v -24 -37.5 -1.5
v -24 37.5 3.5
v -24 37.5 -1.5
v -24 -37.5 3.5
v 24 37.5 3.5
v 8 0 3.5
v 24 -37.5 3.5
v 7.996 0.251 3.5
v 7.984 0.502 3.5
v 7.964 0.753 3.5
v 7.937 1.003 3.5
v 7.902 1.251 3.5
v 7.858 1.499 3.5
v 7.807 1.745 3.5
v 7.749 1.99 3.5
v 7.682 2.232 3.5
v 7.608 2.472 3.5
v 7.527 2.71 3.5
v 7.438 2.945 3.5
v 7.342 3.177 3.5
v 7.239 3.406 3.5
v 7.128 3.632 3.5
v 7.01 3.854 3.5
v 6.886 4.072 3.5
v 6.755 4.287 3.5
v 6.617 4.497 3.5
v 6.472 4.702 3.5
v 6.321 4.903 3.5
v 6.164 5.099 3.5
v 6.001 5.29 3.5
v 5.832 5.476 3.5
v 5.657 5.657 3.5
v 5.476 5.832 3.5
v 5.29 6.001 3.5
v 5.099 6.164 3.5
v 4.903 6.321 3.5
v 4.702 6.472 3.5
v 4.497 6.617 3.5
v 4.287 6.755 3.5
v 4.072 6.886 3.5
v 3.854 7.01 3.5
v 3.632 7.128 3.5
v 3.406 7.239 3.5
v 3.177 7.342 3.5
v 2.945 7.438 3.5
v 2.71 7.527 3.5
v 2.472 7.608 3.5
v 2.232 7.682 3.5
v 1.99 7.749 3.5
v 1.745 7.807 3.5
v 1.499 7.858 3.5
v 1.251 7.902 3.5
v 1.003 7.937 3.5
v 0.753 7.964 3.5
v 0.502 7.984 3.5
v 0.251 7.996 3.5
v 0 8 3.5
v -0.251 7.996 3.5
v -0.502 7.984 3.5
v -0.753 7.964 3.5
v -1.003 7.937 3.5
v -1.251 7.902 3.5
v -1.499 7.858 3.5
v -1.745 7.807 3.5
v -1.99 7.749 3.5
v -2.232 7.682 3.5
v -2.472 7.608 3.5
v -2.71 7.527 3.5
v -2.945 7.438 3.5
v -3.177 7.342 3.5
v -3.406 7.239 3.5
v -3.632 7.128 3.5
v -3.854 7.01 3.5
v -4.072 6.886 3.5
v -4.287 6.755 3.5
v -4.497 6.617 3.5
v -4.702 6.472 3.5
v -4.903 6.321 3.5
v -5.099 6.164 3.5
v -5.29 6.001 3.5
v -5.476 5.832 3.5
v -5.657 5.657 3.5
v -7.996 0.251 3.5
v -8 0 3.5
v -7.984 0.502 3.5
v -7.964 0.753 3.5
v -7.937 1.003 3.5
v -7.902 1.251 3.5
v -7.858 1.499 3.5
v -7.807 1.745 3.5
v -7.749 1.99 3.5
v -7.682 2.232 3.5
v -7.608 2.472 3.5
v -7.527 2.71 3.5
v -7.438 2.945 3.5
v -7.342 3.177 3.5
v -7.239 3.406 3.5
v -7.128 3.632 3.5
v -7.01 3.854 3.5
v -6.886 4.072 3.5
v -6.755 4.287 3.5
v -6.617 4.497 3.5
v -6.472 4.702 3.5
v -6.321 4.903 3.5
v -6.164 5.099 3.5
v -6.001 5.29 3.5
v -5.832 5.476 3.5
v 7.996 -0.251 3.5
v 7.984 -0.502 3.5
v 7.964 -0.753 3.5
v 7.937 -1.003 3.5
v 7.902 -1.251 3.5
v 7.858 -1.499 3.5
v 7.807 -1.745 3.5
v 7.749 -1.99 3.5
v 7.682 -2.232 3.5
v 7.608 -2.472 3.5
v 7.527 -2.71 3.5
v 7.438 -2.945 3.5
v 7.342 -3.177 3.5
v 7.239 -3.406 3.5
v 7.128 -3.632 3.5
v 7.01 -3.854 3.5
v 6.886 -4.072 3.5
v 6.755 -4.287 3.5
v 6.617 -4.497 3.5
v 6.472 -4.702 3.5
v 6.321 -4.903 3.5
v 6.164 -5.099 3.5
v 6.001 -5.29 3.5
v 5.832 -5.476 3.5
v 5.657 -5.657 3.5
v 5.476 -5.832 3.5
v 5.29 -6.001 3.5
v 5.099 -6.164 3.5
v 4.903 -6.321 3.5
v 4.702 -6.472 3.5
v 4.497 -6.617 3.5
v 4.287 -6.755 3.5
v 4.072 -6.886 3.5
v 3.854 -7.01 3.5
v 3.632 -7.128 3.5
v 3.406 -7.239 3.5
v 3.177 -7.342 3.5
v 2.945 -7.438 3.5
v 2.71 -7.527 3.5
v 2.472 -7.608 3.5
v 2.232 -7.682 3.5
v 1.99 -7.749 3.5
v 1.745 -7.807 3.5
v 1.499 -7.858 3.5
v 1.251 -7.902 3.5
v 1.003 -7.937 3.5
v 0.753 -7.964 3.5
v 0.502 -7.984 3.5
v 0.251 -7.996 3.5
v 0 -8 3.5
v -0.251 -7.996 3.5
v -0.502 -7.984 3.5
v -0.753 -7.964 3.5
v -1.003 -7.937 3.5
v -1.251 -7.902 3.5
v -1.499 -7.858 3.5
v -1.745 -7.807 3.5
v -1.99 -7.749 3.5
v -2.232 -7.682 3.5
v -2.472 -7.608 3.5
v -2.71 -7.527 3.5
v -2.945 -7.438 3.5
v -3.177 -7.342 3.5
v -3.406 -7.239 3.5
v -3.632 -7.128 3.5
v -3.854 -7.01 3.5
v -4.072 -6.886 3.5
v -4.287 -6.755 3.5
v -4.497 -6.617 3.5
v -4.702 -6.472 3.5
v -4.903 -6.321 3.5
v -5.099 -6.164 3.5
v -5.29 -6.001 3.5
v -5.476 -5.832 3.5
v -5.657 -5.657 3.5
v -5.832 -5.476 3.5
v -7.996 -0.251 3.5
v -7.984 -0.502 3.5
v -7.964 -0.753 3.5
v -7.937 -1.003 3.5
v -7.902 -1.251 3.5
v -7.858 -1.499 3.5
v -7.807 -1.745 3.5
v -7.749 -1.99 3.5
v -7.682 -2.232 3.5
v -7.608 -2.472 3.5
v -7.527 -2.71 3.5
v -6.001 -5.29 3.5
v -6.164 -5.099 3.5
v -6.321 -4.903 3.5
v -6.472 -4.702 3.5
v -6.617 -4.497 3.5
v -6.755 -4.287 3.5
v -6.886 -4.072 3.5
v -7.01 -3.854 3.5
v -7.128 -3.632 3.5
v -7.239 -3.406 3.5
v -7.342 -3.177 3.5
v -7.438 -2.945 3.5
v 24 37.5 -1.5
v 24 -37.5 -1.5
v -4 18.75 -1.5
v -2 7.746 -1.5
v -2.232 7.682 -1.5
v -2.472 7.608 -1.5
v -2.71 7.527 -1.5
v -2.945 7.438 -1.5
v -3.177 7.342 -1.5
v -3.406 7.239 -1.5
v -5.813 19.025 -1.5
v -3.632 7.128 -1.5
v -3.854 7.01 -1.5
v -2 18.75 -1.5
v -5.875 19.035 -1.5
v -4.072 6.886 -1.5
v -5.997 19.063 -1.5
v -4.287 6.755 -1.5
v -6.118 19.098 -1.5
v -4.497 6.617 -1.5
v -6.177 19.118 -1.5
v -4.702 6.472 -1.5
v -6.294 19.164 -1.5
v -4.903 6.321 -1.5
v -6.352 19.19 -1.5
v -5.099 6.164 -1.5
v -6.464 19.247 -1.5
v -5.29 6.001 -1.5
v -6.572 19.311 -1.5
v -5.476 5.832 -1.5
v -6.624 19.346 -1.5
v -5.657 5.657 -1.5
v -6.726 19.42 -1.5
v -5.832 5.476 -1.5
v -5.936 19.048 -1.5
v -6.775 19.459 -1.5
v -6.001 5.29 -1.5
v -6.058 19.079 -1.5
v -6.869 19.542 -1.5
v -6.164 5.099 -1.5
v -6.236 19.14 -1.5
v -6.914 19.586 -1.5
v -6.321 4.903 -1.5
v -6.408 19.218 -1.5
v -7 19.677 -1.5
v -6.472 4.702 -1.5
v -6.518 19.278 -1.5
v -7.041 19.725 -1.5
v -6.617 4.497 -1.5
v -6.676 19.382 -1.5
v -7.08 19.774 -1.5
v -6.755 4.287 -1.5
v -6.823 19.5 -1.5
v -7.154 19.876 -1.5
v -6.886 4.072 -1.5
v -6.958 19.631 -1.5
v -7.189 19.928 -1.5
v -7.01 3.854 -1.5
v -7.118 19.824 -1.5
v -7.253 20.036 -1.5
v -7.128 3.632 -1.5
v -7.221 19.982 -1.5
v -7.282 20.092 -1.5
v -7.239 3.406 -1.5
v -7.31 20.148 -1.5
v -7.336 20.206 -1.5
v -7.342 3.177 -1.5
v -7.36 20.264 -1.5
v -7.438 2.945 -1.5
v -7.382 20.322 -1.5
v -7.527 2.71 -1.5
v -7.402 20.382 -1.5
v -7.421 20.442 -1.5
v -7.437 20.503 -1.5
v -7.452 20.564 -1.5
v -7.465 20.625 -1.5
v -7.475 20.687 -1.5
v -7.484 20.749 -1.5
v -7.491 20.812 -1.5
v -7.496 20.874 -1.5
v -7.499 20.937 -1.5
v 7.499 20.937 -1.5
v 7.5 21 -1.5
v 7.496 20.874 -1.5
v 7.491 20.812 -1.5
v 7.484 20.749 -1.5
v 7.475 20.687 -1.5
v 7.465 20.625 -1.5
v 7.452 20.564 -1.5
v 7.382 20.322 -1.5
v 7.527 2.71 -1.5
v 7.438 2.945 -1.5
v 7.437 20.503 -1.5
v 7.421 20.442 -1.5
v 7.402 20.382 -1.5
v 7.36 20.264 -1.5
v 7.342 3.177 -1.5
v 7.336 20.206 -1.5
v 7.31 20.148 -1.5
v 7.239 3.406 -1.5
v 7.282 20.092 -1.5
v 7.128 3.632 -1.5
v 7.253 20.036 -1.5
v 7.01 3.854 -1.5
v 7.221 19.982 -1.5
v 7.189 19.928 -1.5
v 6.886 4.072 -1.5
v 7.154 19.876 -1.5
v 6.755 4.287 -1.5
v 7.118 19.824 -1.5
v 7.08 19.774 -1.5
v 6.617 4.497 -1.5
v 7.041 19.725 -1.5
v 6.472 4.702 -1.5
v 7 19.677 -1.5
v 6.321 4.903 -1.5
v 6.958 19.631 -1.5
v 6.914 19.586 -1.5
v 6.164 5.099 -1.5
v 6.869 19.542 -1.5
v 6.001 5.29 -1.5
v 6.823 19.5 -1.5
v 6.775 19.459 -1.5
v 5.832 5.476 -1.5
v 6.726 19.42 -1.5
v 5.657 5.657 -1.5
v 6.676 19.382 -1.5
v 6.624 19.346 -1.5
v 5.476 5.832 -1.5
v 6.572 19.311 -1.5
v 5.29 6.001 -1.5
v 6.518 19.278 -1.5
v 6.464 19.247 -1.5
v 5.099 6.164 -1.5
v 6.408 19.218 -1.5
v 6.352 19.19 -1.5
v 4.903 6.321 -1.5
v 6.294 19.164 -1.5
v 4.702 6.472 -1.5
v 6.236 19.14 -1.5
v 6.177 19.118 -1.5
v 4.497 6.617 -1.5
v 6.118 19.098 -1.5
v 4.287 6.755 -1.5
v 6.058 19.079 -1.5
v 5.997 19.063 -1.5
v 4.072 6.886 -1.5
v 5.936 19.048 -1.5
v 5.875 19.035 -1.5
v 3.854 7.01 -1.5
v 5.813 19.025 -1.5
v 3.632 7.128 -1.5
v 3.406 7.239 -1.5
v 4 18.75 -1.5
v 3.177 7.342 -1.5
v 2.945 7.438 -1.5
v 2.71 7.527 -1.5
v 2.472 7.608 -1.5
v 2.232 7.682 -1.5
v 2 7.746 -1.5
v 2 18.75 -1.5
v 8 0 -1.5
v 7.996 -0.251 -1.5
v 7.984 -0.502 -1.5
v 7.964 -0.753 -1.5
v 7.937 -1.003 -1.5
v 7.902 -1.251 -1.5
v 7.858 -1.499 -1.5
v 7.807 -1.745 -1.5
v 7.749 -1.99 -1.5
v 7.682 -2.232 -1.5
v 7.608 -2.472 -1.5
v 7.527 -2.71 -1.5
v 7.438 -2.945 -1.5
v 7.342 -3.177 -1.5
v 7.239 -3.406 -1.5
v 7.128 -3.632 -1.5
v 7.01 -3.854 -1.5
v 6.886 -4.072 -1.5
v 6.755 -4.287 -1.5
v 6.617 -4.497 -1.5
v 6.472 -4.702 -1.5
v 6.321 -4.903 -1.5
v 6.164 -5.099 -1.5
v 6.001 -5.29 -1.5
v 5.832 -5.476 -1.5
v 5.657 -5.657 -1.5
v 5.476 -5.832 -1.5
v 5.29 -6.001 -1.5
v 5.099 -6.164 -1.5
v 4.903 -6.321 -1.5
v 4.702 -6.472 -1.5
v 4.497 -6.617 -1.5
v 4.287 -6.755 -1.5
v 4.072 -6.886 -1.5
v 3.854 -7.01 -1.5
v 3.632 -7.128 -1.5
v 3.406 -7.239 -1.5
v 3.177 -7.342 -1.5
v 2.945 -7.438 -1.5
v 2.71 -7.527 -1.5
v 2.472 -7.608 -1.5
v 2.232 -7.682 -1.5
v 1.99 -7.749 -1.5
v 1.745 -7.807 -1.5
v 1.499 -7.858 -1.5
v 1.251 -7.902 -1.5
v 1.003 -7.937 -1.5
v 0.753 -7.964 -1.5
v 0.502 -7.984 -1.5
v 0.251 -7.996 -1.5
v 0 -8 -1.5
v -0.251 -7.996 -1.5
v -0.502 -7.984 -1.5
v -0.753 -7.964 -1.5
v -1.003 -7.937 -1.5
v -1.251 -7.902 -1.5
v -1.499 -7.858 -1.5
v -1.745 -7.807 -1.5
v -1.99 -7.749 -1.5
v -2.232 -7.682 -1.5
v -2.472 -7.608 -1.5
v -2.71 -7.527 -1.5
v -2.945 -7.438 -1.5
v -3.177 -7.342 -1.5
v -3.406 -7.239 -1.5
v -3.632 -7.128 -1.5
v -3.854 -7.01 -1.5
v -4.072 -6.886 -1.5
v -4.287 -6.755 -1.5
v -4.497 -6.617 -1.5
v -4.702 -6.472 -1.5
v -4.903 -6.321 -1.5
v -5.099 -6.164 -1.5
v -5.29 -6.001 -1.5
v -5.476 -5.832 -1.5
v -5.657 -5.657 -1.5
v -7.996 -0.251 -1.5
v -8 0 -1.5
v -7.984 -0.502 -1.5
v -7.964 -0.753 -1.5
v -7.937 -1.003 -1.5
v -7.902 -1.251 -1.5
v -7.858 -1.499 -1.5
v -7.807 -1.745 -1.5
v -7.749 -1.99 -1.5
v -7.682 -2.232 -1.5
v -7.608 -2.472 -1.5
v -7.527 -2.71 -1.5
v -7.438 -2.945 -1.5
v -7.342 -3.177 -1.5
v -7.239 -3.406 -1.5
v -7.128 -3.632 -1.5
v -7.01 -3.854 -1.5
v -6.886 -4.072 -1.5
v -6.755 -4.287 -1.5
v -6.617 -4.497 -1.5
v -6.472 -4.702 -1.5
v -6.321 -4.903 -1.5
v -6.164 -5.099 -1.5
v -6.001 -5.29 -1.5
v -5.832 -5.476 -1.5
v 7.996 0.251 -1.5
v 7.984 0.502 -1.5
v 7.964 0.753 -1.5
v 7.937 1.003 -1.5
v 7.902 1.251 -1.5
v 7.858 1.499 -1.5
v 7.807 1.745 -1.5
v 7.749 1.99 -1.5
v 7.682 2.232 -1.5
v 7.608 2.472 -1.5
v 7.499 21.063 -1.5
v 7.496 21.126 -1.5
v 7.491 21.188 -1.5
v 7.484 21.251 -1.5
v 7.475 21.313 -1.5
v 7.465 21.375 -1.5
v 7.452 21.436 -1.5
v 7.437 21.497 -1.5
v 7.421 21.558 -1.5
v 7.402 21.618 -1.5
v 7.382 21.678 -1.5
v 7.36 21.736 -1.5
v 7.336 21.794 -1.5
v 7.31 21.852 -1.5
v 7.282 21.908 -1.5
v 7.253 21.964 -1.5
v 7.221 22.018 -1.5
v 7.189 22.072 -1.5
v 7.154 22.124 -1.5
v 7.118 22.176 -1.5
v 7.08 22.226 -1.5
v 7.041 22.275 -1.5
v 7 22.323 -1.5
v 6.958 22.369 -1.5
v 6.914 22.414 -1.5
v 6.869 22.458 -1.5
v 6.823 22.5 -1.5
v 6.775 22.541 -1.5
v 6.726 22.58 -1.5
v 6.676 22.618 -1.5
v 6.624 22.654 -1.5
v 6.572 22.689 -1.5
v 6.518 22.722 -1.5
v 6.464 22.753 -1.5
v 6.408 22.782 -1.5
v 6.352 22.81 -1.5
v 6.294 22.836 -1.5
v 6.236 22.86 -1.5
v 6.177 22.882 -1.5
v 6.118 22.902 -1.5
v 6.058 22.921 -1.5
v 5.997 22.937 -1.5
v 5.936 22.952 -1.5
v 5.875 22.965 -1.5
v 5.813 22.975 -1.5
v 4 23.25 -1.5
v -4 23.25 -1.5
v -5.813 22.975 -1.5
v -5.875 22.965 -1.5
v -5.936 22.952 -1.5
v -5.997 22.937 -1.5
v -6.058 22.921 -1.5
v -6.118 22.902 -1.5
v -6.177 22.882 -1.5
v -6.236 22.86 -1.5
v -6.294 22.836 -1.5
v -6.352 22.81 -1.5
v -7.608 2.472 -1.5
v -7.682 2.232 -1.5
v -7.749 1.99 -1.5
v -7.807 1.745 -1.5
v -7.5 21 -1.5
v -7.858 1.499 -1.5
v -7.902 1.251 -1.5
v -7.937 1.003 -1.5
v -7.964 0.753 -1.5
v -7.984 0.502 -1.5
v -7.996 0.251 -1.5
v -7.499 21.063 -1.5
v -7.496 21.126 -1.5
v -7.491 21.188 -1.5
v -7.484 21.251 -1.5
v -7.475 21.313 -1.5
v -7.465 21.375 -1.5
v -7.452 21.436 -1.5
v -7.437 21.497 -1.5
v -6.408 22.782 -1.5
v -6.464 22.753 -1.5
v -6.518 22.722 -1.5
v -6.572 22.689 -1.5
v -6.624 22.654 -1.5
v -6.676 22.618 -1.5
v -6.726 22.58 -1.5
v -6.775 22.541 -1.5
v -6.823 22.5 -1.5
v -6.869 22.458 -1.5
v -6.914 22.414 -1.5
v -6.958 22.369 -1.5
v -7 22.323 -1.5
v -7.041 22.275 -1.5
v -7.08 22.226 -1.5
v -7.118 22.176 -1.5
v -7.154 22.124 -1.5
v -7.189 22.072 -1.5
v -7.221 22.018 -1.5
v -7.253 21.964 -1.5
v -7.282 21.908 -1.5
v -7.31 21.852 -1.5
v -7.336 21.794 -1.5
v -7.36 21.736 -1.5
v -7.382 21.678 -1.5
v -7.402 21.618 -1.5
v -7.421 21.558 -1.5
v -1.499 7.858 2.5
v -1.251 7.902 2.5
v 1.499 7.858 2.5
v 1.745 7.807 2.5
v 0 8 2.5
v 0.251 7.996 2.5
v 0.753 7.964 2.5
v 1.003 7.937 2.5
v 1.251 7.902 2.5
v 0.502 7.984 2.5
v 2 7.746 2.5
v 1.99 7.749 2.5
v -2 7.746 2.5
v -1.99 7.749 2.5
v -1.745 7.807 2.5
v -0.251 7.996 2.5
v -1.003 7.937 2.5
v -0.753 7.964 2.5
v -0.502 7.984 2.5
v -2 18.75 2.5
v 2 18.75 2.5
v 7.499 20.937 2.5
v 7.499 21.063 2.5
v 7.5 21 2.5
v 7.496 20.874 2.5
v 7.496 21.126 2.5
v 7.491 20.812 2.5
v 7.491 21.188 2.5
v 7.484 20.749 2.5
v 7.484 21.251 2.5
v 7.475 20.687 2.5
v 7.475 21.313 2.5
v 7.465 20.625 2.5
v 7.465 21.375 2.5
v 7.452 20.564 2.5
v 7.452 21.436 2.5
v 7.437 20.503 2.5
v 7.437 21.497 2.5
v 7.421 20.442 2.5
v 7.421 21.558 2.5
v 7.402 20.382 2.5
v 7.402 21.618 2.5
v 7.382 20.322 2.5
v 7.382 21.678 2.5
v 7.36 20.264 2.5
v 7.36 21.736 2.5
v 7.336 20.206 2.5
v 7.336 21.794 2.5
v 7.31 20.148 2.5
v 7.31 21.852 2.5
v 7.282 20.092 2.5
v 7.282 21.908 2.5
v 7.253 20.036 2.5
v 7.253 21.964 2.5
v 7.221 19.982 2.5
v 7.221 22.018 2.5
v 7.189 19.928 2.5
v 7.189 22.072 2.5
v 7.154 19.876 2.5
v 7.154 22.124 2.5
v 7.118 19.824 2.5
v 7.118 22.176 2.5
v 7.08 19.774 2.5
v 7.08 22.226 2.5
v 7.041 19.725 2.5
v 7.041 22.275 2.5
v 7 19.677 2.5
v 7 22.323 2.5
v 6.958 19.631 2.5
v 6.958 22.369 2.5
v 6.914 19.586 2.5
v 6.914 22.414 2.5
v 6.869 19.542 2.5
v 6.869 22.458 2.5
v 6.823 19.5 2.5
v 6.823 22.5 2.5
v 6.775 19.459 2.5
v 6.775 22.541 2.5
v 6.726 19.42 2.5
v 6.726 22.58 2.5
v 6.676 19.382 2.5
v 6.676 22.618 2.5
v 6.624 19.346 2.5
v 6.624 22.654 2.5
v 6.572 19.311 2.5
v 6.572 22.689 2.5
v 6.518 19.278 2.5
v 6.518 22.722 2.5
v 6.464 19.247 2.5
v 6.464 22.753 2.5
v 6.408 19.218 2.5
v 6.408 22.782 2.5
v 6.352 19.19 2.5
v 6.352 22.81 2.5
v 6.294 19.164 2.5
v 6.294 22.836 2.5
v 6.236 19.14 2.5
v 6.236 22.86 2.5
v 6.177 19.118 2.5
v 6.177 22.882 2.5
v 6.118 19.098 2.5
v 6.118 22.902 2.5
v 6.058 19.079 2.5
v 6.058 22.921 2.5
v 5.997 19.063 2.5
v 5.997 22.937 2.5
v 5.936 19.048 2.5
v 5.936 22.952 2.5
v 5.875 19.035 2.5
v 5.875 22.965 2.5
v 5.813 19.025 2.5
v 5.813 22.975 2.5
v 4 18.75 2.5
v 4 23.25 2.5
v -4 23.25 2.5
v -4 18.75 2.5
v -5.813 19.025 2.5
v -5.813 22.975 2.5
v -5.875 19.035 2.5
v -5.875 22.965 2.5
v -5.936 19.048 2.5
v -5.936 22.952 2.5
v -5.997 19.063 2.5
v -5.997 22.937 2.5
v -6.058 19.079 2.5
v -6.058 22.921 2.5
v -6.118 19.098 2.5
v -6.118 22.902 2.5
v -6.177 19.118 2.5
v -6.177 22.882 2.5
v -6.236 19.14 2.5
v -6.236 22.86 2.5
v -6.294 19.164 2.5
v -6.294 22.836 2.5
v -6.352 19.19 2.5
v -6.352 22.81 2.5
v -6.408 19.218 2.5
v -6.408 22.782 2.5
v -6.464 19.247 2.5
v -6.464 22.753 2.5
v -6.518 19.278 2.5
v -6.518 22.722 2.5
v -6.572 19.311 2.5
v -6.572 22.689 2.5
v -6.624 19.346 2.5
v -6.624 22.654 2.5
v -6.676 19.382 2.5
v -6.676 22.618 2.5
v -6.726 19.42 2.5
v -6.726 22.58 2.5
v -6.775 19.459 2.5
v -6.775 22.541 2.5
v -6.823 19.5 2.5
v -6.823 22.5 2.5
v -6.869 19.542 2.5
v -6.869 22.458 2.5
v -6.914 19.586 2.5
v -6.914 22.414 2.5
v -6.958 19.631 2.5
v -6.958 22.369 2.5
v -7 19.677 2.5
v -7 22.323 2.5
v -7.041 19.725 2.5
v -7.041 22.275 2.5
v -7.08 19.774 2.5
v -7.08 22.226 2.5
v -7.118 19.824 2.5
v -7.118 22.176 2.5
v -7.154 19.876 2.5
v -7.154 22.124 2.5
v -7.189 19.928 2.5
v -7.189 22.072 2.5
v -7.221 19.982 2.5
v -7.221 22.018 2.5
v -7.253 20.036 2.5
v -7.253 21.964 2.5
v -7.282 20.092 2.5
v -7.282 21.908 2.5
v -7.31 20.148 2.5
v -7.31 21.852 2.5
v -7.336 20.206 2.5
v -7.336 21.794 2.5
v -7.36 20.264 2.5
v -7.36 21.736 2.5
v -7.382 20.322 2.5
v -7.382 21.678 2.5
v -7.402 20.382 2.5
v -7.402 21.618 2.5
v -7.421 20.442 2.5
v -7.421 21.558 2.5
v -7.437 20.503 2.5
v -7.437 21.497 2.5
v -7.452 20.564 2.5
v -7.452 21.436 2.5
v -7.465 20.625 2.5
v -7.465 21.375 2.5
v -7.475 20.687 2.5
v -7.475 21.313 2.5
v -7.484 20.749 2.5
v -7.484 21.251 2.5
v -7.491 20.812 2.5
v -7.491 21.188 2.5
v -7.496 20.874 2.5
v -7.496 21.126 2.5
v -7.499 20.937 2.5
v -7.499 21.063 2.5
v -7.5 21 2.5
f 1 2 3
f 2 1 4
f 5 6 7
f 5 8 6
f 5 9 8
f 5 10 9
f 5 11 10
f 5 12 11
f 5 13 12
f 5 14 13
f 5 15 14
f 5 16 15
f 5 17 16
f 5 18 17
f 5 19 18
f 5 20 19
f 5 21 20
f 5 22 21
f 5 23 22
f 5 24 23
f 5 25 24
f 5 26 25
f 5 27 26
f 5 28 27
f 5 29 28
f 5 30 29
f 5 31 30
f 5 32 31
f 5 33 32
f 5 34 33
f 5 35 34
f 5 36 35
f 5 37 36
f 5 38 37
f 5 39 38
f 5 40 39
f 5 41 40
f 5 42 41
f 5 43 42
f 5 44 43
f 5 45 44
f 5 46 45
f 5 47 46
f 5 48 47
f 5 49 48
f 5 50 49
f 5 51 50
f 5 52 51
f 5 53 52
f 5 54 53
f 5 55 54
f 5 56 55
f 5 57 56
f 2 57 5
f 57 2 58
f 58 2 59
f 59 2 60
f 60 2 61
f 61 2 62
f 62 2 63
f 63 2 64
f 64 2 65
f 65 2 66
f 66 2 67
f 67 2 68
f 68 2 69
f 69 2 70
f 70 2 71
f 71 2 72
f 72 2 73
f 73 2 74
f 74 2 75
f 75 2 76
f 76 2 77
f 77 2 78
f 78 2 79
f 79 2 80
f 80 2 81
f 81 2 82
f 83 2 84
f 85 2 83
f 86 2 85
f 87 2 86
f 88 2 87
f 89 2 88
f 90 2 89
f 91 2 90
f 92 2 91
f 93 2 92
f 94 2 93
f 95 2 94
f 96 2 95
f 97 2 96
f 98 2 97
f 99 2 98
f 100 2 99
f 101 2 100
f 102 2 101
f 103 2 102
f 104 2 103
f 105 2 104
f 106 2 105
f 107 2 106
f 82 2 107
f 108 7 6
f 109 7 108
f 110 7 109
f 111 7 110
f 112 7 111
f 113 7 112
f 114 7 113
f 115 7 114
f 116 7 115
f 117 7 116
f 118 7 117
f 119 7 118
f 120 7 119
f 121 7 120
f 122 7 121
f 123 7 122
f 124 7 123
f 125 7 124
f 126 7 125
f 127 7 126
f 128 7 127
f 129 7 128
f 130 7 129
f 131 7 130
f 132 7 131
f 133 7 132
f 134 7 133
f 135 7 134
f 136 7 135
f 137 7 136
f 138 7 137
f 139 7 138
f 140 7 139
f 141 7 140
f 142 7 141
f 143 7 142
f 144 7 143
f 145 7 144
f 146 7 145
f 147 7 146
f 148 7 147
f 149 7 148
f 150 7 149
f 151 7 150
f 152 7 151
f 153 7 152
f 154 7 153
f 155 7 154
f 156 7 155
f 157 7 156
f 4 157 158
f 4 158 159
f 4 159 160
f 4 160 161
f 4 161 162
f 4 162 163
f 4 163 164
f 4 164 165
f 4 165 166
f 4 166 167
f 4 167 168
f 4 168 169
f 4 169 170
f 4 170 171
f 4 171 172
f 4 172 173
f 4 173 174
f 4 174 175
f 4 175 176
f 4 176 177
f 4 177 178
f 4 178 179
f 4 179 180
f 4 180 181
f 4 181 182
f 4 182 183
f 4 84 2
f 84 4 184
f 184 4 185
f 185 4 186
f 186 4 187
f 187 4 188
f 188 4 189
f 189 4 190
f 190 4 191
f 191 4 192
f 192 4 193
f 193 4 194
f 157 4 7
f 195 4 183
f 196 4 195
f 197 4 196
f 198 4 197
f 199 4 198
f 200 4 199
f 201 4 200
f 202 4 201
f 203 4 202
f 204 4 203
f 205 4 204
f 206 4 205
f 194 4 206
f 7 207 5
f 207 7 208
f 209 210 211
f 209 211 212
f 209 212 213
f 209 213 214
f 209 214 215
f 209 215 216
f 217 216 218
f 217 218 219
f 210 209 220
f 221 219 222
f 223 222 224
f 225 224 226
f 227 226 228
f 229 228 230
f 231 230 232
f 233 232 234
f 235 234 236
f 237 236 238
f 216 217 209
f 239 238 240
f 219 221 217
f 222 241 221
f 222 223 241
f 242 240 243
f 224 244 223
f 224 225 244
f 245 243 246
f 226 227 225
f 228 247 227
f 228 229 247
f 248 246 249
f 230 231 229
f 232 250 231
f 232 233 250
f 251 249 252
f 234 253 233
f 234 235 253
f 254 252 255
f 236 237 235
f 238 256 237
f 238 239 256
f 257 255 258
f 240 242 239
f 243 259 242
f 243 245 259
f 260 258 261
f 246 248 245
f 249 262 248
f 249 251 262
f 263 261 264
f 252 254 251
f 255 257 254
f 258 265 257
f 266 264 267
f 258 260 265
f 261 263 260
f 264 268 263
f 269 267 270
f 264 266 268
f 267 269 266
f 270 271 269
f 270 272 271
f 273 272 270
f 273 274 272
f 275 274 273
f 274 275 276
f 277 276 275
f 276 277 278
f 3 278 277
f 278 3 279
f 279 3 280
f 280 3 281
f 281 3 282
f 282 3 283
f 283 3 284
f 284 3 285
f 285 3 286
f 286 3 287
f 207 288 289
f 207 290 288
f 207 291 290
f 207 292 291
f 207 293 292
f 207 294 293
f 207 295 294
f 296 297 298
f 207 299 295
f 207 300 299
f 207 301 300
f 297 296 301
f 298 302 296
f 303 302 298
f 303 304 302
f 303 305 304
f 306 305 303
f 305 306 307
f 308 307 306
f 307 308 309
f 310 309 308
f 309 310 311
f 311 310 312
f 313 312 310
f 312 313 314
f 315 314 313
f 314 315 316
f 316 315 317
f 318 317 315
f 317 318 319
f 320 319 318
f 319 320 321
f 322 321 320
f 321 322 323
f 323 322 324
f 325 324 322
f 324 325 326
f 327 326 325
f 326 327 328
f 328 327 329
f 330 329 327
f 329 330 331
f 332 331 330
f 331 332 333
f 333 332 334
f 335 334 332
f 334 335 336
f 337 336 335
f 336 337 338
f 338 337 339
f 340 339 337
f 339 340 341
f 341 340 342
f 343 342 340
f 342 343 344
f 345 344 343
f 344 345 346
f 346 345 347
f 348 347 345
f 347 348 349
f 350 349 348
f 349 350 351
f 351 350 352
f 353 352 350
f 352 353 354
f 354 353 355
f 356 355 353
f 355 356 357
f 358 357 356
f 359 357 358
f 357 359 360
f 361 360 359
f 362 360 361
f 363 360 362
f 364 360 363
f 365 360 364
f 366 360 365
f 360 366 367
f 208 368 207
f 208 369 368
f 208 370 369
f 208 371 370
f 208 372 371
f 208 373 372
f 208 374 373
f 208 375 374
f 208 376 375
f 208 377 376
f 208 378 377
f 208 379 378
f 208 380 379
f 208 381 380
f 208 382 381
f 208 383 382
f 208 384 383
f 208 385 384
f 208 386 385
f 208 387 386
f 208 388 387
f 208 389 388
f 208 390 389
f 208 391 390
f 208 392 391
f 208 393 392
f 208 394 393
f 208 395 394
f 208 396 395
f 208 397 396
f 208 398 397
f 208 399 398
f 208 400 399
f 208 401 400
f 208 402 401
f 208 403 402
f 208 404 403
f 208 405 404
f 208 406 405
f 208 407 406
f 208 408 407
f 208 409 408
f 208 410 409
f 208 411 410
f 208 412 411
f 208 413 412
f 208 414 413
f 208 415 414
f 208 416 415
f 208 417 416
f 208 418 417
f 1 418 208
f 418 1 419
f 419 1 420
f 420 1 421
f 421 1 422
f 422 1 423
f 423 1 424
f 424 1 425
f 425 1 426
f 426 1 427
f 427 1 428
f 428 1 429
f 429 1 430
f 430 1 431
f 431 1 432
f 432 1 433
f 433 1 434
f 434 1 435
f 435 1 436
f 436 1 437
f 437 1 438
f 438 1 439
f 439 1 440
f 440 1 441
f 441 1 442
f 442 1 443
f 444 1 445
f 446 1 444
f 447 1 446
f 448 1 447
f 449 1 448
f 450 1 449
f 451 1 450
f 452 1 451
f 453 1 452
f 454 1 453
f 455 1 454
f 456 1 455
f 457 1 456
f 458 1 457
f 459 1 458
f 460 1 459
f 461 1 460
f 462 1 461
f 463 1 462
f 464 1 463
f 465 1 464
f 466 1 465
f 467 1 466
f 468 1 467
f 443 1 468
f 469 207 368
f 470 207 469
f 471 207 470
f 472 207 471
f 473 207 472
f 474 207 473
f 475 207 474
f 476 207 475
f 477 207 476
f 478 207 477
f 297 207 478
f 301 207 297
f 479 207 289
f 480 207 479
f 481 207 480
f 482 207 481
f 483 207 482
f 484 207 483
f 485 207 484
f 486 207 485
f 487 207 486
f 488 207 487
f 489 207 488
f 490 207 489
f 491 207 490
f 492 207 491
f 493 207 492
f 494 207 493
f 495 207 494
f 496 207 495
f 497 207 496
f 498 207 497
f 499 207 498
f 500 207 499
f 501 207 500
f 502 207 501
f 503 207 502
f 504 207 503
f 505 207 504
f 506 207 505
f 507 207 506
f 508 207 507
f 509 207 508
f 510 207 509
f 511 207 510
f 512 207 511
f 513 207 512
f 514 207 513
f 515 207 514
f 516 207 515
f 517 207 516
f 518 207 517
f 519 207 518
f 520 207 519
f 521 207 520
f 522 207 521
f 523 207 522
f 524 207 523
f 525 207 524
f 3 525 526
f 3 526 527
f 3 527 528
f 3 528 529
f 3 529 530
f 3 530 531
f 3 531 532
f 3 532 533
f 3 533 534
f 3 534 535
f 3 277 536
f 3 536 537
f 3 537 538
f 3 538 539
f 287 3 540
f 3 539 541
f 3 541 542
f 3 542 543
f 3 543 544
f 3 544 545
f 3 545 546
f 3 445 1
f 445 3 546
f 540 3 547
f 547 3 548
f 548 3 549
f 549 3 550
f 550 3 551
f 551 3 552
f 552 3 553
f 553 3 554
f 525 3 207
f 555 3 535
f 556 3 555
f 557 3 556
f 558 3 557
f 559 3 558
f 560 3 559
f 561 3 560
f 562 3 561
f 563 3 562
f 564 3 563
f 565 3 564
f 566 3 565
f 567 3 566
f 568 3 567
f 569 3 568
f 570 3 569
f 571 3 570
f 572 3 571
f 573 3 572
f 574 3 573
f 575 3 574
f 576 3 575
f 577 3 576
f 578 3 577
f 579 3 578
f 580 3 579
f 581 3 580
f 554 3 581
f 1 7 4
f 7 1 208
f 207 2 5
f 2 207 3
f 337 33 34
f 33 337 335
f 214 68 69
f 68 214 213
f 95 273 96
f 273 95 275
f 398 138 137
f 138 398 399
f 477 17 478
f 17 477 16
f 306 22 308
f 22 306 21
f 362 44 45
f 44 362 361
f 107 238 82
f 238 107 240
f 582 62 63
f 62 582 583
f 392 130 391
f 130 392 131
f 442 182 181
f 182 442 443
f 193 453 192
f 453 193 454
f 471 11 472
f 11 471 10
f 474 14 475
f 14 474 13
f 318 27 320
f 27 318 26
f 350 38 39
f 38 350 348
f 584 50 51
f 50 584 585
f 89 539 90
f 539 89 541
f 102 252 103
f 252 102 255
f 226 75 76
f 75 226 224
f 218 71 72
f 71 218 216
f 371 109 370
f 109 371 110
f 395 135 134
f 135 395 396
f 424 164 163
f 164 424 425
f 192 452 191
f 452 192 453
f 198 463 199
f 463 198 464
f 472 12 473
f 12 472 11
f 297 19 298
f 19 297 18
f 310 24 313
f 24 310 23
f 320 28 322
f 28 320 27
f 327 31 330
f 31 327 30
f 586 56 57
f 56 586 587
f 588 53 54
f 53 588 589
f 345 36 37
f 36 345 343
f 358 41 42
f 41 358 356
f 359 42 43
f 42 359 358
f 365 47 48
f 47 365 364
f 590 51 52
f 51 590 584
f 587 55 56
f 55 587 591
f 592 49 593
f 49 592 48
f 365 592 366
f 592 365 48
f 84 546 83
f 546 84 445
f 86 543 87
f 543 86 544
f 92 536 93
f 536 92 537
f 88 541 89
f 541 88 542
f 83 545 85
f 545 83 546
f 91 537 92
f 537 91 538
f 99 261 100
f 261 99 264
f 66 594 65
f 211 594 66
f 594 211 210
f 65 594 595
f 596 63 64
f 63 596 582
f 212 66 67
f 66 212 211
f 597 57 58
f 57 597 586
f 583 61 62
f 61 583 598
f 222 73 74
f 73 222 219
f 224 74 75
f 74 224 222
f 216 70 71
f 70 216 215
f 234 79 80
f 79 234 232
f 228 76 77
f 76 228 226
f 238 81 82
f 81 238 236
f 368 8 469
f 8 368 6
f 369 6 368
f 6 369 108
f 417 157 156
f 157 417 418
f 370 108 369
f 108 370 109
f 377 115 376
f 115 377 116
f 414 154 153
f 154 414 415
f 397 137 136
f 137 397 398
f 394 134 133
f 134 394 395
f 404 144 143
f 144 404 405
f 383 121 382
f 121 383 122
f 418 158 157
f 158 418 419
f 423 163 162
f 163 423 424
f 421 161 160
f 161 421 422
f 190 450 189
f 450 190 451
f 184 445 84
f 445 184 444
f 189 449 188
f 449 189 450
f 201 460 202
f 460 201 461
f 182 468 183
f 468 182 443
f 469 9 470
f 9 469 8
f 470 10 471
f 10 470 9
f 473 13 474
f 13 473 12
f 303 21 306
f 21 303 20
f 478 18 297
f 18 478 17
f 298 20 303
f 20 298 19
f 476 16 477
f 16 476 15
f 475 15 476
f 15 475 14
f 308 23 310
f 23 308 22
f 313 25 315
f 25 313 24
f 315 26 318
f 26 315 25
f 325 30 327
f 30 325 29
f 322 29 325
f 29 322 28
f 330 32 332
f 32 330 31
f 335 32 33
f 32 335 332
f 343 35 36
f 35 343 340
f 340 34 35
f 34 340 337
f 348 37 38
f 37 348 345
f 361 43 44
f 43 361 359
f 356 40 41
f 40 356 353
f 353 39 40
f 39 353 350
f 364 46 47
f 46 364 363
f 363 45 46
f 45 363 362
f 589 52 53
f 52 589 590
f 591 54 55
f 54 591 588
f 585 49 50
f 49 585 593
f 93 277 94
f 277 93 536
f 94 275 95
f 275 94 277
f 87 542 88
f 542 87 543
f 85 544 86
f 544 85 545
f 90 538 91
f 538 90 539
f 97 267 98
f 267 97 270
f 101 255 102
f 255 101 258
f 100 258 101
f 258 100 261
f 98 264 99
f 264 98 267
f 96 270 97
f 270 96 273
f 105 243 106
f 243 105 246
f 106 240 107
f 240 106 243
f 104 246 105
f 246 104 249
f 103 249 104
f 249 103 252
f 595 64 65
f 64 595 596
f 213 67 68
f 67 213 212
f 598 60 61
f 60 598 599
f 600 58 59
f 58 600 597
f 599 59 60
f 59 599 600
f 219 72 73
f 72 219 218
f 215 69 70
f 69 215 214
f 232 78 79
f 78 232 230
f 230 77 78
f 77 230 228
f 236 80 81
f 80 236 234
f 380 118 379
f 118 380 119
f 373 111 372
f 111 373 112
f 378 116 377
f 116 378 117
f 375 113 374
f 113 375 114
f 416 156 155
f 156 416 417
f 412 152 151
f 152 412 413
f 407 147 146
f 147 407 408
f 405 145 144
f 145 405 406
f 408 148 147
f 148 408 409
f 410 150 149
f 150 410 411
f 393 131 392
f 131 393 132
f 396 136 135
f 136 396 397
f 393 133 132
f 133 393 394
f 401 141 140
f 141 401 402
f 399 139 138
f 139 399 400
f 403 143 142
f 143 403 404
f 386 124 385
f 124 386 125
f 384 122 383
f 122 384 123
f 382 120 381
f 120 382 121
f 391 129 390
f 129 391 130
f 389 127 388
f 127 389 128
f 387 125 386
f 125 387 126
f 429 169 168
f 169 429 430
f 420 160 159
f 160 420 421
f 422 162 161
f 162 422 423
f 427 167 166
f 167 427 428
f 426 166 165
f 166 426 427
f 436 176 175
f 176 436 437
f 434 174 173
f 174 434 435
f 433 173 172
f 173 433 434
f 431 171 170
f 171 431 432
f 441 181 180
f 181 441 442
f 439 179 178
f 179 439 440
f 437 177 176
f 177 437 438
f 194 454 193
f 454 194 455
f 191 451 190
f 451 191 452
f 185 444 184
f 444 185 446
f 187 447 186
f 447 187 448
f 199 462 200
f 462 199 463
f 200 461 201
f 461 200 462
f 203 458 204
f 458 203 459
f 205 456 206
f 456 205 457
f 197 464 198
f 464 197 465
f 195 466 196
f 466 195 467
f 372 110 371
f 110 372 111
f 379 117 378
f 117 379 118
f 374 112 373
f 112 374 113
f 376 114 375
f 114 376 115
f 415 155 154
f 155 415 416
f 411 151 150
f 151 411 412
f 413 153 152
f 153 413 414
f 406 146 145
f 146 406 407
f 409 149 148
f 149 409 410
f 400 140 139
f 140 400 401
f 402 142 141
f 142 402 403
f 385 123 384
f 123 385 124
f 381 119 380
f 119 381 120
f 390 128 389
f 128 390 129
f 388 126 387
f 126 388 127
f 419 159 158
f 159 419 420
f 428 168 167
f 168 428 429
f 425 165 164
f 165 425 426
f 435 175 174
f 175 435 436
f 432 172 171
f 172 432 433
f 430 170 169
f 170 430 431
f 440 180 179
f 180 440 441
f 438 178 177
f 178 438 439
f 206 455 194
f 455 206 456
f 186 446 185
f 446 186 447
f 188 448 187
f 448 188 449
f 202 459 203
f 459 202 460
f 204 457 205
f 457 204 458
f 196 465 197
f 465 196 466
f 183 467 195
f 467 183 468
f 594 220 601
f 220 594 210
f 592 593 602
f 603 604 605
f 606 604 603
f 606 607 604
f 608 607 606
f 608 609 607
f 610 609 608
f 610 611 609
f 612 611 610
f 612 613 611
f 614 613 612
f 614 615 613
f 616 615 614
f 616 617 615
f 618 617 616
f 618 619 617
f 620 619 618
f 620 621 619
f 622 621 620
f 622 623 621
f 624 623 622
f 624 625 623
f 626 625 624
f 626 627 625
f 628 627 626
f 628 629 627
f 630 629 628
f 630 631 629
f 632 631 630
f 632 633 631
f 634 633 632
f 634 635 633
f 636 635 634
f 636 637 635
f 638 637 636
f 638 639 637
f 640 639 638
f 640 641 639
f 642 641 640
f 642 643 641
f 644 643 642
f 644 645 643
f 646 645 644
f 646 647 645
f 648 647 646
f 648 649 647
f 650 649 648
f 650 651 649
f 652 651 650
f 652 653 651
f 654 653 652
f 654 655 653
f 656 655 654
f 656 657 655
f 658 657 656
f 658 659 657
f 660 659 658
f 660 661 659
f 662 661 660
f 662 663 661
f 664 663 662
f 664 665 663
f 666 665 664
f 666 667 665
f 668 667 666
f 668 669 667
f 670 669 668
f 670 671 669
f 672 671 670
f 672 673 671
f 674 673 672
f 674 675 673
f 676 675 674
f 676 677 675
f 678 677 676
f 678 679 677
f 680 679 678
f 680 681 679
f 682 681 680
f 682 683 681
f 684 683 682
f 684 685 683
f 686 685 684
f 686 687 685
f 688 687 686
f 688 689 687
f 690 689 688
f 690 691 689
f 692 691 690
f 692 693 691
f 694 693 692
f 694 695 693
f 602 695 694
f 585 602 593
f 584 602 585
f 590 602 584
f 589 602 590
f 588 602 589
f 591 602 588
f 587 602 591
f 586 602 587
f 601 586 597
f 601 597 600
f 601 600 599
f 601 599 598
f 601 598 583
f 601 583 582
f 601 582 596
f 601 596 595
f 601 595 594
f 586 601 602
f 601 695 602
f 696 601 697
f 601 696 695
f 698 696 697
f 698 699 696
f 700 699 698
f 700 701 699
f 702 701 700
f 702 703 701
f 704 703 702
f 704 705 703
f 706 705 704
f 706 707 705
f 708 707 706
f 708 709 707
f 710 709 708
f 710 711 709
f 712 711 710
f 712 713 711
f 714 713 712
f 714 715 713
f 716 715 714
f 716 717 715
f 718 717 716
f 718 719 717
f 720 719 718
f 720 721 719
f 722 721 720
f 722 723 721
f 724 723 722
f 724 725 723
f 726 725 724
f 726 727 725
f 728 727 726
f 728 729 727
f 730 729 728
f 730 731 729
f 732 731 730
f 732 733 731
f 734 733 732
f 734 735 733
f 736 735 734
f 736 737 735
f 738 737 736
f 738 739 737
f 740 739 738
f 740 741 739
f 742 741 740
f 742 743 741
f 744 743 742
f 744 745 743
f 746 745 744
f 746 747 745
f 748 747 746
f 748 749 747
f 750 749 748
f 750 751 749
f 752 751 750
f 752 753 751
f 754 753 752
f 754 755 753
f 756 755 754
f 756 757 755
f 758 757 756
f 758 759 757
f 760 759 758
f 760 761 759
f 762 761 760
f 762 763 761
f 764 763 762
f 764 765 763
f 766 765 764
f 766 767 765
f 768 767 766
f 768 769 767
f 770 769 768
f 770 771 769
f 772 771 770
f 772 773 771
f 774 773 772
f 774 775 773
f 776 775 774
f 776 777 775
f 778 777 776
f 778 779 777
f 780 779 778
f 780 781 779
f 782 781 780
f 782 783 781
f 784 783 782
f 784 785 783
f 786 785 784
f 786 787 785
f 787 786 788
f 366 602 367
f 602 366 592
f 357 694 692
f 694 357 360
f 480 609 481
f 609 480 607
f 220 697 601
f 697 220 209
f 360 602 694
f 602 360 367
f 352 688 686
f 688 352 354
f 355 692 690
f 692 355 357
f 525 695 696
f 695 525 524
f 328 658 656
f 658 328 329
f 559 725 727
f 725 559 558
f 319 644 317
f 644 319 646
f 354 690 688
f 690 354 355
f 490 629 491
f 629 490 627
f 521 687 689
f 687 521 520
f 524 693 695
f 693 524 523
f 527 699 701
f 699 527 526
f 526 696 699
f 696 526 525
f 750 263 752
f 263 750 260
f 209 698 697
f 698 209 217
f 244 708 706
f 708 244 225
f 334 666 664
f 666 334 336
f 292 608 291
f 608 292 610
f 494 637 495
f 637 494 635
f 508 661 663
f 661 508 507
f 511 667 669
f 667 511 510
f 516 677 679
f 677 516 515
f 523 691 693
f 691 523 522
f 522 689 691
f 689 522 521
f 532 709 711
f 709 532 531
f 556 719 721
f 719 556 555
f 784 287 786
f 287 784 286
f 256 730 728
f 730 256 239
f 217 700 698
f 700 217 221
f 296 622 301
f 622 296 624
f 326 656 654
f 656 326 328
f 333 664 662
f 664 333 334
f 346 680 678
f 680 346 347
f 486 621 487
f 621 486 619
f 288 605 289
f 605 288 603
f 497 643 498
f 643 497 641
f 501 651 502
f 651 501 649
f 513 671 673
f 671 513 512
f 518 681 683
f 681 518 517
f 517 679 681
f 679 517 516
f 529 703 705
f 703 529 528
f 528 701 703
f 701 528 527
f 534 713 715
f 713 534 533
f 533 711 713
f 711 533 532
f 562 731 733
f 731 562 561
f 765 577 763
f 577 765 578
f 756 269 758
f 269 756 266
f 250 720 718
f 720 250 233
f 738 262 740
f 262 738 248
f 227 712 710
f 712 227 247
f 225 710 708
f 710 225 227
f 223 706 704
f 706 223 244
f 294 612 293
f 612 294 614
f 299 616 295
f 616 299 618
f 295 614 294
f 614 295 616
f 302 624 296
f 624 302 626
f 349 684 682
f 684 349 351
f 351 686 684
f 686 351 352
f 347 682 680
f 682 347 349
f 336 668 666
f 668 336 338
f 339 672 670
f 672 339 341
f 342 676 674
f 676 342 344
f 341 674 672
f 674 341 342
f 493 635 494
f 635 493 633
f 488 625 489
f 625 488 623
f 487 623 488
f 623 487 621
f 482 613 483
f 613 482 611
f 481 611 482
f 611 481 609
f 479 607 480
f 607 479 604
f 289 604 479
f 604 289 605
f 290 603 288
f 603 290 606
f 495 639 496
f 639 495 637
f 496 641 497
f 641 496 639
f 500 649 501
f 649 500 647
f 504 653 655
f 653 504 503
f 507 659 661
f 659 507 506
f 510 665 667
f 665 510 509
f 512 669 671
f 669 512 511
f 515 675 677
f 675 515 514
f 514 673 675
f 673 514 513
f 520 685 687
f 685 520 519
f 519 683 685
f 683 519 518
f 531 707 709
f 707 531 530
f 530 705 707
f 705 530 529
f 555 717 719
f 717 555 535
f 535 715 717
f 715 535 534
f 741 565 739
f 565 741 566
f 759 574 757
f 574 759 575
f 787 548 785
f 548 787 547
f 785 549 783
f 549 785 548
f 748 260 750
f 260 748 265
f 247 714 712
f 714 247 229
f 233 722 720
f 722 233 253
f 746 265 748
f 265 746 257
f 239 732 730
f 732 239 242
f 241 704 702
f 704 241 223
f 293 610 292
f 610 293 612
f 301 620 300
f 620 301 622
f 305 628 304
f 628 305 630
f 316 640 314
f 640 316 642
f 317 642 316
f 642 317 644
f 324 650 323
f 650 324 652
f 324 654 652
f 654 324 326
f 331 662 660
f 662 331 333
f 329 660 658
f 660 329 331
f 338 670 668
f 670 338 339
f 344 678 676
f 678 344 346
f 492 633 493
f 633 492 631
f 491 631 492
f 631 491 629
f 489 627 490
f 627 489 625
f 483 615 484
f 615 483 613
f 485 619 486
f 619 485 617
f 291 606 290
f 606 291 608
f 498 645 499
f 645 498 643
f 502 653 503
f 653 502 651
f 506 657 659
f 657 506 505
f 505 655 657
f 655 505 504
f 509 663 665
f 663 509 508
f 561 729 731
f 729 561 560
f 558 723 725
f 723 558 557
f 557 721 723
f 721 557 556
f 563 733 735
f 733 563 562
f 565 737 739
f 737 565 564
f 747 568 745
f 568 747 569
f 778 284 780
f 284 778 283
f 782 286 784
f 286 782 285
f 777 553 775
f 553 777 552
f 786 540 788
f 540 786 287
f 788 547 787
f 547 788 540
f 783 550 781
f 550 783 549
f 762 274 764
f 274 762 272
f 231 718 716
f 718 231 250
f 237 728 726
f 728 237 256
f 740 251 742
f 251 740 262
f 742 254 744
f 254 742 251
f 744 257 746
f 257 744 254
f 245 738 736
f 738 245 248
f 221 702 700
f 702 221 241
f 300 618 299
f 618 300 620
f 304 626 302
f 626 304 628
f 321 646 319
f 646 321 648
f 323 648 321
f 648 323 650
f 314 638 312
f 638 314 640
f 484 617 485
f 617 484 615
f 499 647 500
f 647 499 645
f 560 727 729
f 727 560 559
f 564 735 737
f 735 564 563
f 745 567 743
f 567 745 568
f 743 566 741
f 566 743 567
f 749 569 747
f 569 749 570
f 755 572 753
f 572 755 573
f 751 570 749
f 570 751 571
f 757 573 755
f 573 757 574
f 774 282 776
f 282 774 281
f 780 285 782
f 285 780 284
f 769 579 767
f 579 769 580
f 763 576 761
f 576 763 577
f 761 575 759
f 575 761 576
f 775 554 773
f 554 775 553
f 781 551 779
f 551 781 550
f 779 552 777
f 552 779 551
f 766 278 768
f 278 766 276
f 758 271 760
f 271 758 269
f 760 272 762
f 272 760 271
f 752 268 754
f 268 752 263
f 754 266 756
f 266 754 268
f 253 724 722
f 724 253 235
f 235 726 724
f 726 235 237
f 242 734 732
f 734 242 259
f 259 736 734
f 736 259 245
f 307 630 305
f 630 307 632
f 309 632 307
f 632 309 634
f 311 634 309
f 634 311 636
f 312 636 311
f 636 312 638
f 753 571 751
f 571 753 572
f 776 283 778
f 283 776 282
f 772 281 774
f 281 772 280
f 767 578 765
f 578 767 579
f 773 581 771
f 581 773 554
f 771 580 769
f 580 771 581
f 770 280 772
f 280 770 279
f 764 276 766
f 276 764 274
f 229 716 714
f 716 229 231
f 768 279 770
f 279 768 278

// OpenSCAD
//CAPA1
$fn=200;
largo=75;
ancho=48;
alto=5;
d_cir=16;
ancho_c1=4;
largo_c1=13;

ancho_c2=4.5;
largo_c2=8;


difference(){
    translate([0,0,1])
    {
    cube([ancho,largo,alto],center=true);
    }
    cylinder(h=alto*2,r=d_cir/2, center = true);
    translate([0,d_cir-2,0])
    {
        cube([ancho_c1,largo_c1,alto],center=true);
    }
    translate([0,d_cir/2+largo_c1,0])
    {
        hull()
        {
            cube([largo_c2,ancho_c2,alto],center=true);
            translate([ancho_c2+1,0,0])
            {
                cylinder(h=alto,r=2, center = true);
            }
            translate([-ancho_c2-1,0,0])
            {
                cylinder(h=alto,r=2, center = true);
            }
        }
    }
    
}
